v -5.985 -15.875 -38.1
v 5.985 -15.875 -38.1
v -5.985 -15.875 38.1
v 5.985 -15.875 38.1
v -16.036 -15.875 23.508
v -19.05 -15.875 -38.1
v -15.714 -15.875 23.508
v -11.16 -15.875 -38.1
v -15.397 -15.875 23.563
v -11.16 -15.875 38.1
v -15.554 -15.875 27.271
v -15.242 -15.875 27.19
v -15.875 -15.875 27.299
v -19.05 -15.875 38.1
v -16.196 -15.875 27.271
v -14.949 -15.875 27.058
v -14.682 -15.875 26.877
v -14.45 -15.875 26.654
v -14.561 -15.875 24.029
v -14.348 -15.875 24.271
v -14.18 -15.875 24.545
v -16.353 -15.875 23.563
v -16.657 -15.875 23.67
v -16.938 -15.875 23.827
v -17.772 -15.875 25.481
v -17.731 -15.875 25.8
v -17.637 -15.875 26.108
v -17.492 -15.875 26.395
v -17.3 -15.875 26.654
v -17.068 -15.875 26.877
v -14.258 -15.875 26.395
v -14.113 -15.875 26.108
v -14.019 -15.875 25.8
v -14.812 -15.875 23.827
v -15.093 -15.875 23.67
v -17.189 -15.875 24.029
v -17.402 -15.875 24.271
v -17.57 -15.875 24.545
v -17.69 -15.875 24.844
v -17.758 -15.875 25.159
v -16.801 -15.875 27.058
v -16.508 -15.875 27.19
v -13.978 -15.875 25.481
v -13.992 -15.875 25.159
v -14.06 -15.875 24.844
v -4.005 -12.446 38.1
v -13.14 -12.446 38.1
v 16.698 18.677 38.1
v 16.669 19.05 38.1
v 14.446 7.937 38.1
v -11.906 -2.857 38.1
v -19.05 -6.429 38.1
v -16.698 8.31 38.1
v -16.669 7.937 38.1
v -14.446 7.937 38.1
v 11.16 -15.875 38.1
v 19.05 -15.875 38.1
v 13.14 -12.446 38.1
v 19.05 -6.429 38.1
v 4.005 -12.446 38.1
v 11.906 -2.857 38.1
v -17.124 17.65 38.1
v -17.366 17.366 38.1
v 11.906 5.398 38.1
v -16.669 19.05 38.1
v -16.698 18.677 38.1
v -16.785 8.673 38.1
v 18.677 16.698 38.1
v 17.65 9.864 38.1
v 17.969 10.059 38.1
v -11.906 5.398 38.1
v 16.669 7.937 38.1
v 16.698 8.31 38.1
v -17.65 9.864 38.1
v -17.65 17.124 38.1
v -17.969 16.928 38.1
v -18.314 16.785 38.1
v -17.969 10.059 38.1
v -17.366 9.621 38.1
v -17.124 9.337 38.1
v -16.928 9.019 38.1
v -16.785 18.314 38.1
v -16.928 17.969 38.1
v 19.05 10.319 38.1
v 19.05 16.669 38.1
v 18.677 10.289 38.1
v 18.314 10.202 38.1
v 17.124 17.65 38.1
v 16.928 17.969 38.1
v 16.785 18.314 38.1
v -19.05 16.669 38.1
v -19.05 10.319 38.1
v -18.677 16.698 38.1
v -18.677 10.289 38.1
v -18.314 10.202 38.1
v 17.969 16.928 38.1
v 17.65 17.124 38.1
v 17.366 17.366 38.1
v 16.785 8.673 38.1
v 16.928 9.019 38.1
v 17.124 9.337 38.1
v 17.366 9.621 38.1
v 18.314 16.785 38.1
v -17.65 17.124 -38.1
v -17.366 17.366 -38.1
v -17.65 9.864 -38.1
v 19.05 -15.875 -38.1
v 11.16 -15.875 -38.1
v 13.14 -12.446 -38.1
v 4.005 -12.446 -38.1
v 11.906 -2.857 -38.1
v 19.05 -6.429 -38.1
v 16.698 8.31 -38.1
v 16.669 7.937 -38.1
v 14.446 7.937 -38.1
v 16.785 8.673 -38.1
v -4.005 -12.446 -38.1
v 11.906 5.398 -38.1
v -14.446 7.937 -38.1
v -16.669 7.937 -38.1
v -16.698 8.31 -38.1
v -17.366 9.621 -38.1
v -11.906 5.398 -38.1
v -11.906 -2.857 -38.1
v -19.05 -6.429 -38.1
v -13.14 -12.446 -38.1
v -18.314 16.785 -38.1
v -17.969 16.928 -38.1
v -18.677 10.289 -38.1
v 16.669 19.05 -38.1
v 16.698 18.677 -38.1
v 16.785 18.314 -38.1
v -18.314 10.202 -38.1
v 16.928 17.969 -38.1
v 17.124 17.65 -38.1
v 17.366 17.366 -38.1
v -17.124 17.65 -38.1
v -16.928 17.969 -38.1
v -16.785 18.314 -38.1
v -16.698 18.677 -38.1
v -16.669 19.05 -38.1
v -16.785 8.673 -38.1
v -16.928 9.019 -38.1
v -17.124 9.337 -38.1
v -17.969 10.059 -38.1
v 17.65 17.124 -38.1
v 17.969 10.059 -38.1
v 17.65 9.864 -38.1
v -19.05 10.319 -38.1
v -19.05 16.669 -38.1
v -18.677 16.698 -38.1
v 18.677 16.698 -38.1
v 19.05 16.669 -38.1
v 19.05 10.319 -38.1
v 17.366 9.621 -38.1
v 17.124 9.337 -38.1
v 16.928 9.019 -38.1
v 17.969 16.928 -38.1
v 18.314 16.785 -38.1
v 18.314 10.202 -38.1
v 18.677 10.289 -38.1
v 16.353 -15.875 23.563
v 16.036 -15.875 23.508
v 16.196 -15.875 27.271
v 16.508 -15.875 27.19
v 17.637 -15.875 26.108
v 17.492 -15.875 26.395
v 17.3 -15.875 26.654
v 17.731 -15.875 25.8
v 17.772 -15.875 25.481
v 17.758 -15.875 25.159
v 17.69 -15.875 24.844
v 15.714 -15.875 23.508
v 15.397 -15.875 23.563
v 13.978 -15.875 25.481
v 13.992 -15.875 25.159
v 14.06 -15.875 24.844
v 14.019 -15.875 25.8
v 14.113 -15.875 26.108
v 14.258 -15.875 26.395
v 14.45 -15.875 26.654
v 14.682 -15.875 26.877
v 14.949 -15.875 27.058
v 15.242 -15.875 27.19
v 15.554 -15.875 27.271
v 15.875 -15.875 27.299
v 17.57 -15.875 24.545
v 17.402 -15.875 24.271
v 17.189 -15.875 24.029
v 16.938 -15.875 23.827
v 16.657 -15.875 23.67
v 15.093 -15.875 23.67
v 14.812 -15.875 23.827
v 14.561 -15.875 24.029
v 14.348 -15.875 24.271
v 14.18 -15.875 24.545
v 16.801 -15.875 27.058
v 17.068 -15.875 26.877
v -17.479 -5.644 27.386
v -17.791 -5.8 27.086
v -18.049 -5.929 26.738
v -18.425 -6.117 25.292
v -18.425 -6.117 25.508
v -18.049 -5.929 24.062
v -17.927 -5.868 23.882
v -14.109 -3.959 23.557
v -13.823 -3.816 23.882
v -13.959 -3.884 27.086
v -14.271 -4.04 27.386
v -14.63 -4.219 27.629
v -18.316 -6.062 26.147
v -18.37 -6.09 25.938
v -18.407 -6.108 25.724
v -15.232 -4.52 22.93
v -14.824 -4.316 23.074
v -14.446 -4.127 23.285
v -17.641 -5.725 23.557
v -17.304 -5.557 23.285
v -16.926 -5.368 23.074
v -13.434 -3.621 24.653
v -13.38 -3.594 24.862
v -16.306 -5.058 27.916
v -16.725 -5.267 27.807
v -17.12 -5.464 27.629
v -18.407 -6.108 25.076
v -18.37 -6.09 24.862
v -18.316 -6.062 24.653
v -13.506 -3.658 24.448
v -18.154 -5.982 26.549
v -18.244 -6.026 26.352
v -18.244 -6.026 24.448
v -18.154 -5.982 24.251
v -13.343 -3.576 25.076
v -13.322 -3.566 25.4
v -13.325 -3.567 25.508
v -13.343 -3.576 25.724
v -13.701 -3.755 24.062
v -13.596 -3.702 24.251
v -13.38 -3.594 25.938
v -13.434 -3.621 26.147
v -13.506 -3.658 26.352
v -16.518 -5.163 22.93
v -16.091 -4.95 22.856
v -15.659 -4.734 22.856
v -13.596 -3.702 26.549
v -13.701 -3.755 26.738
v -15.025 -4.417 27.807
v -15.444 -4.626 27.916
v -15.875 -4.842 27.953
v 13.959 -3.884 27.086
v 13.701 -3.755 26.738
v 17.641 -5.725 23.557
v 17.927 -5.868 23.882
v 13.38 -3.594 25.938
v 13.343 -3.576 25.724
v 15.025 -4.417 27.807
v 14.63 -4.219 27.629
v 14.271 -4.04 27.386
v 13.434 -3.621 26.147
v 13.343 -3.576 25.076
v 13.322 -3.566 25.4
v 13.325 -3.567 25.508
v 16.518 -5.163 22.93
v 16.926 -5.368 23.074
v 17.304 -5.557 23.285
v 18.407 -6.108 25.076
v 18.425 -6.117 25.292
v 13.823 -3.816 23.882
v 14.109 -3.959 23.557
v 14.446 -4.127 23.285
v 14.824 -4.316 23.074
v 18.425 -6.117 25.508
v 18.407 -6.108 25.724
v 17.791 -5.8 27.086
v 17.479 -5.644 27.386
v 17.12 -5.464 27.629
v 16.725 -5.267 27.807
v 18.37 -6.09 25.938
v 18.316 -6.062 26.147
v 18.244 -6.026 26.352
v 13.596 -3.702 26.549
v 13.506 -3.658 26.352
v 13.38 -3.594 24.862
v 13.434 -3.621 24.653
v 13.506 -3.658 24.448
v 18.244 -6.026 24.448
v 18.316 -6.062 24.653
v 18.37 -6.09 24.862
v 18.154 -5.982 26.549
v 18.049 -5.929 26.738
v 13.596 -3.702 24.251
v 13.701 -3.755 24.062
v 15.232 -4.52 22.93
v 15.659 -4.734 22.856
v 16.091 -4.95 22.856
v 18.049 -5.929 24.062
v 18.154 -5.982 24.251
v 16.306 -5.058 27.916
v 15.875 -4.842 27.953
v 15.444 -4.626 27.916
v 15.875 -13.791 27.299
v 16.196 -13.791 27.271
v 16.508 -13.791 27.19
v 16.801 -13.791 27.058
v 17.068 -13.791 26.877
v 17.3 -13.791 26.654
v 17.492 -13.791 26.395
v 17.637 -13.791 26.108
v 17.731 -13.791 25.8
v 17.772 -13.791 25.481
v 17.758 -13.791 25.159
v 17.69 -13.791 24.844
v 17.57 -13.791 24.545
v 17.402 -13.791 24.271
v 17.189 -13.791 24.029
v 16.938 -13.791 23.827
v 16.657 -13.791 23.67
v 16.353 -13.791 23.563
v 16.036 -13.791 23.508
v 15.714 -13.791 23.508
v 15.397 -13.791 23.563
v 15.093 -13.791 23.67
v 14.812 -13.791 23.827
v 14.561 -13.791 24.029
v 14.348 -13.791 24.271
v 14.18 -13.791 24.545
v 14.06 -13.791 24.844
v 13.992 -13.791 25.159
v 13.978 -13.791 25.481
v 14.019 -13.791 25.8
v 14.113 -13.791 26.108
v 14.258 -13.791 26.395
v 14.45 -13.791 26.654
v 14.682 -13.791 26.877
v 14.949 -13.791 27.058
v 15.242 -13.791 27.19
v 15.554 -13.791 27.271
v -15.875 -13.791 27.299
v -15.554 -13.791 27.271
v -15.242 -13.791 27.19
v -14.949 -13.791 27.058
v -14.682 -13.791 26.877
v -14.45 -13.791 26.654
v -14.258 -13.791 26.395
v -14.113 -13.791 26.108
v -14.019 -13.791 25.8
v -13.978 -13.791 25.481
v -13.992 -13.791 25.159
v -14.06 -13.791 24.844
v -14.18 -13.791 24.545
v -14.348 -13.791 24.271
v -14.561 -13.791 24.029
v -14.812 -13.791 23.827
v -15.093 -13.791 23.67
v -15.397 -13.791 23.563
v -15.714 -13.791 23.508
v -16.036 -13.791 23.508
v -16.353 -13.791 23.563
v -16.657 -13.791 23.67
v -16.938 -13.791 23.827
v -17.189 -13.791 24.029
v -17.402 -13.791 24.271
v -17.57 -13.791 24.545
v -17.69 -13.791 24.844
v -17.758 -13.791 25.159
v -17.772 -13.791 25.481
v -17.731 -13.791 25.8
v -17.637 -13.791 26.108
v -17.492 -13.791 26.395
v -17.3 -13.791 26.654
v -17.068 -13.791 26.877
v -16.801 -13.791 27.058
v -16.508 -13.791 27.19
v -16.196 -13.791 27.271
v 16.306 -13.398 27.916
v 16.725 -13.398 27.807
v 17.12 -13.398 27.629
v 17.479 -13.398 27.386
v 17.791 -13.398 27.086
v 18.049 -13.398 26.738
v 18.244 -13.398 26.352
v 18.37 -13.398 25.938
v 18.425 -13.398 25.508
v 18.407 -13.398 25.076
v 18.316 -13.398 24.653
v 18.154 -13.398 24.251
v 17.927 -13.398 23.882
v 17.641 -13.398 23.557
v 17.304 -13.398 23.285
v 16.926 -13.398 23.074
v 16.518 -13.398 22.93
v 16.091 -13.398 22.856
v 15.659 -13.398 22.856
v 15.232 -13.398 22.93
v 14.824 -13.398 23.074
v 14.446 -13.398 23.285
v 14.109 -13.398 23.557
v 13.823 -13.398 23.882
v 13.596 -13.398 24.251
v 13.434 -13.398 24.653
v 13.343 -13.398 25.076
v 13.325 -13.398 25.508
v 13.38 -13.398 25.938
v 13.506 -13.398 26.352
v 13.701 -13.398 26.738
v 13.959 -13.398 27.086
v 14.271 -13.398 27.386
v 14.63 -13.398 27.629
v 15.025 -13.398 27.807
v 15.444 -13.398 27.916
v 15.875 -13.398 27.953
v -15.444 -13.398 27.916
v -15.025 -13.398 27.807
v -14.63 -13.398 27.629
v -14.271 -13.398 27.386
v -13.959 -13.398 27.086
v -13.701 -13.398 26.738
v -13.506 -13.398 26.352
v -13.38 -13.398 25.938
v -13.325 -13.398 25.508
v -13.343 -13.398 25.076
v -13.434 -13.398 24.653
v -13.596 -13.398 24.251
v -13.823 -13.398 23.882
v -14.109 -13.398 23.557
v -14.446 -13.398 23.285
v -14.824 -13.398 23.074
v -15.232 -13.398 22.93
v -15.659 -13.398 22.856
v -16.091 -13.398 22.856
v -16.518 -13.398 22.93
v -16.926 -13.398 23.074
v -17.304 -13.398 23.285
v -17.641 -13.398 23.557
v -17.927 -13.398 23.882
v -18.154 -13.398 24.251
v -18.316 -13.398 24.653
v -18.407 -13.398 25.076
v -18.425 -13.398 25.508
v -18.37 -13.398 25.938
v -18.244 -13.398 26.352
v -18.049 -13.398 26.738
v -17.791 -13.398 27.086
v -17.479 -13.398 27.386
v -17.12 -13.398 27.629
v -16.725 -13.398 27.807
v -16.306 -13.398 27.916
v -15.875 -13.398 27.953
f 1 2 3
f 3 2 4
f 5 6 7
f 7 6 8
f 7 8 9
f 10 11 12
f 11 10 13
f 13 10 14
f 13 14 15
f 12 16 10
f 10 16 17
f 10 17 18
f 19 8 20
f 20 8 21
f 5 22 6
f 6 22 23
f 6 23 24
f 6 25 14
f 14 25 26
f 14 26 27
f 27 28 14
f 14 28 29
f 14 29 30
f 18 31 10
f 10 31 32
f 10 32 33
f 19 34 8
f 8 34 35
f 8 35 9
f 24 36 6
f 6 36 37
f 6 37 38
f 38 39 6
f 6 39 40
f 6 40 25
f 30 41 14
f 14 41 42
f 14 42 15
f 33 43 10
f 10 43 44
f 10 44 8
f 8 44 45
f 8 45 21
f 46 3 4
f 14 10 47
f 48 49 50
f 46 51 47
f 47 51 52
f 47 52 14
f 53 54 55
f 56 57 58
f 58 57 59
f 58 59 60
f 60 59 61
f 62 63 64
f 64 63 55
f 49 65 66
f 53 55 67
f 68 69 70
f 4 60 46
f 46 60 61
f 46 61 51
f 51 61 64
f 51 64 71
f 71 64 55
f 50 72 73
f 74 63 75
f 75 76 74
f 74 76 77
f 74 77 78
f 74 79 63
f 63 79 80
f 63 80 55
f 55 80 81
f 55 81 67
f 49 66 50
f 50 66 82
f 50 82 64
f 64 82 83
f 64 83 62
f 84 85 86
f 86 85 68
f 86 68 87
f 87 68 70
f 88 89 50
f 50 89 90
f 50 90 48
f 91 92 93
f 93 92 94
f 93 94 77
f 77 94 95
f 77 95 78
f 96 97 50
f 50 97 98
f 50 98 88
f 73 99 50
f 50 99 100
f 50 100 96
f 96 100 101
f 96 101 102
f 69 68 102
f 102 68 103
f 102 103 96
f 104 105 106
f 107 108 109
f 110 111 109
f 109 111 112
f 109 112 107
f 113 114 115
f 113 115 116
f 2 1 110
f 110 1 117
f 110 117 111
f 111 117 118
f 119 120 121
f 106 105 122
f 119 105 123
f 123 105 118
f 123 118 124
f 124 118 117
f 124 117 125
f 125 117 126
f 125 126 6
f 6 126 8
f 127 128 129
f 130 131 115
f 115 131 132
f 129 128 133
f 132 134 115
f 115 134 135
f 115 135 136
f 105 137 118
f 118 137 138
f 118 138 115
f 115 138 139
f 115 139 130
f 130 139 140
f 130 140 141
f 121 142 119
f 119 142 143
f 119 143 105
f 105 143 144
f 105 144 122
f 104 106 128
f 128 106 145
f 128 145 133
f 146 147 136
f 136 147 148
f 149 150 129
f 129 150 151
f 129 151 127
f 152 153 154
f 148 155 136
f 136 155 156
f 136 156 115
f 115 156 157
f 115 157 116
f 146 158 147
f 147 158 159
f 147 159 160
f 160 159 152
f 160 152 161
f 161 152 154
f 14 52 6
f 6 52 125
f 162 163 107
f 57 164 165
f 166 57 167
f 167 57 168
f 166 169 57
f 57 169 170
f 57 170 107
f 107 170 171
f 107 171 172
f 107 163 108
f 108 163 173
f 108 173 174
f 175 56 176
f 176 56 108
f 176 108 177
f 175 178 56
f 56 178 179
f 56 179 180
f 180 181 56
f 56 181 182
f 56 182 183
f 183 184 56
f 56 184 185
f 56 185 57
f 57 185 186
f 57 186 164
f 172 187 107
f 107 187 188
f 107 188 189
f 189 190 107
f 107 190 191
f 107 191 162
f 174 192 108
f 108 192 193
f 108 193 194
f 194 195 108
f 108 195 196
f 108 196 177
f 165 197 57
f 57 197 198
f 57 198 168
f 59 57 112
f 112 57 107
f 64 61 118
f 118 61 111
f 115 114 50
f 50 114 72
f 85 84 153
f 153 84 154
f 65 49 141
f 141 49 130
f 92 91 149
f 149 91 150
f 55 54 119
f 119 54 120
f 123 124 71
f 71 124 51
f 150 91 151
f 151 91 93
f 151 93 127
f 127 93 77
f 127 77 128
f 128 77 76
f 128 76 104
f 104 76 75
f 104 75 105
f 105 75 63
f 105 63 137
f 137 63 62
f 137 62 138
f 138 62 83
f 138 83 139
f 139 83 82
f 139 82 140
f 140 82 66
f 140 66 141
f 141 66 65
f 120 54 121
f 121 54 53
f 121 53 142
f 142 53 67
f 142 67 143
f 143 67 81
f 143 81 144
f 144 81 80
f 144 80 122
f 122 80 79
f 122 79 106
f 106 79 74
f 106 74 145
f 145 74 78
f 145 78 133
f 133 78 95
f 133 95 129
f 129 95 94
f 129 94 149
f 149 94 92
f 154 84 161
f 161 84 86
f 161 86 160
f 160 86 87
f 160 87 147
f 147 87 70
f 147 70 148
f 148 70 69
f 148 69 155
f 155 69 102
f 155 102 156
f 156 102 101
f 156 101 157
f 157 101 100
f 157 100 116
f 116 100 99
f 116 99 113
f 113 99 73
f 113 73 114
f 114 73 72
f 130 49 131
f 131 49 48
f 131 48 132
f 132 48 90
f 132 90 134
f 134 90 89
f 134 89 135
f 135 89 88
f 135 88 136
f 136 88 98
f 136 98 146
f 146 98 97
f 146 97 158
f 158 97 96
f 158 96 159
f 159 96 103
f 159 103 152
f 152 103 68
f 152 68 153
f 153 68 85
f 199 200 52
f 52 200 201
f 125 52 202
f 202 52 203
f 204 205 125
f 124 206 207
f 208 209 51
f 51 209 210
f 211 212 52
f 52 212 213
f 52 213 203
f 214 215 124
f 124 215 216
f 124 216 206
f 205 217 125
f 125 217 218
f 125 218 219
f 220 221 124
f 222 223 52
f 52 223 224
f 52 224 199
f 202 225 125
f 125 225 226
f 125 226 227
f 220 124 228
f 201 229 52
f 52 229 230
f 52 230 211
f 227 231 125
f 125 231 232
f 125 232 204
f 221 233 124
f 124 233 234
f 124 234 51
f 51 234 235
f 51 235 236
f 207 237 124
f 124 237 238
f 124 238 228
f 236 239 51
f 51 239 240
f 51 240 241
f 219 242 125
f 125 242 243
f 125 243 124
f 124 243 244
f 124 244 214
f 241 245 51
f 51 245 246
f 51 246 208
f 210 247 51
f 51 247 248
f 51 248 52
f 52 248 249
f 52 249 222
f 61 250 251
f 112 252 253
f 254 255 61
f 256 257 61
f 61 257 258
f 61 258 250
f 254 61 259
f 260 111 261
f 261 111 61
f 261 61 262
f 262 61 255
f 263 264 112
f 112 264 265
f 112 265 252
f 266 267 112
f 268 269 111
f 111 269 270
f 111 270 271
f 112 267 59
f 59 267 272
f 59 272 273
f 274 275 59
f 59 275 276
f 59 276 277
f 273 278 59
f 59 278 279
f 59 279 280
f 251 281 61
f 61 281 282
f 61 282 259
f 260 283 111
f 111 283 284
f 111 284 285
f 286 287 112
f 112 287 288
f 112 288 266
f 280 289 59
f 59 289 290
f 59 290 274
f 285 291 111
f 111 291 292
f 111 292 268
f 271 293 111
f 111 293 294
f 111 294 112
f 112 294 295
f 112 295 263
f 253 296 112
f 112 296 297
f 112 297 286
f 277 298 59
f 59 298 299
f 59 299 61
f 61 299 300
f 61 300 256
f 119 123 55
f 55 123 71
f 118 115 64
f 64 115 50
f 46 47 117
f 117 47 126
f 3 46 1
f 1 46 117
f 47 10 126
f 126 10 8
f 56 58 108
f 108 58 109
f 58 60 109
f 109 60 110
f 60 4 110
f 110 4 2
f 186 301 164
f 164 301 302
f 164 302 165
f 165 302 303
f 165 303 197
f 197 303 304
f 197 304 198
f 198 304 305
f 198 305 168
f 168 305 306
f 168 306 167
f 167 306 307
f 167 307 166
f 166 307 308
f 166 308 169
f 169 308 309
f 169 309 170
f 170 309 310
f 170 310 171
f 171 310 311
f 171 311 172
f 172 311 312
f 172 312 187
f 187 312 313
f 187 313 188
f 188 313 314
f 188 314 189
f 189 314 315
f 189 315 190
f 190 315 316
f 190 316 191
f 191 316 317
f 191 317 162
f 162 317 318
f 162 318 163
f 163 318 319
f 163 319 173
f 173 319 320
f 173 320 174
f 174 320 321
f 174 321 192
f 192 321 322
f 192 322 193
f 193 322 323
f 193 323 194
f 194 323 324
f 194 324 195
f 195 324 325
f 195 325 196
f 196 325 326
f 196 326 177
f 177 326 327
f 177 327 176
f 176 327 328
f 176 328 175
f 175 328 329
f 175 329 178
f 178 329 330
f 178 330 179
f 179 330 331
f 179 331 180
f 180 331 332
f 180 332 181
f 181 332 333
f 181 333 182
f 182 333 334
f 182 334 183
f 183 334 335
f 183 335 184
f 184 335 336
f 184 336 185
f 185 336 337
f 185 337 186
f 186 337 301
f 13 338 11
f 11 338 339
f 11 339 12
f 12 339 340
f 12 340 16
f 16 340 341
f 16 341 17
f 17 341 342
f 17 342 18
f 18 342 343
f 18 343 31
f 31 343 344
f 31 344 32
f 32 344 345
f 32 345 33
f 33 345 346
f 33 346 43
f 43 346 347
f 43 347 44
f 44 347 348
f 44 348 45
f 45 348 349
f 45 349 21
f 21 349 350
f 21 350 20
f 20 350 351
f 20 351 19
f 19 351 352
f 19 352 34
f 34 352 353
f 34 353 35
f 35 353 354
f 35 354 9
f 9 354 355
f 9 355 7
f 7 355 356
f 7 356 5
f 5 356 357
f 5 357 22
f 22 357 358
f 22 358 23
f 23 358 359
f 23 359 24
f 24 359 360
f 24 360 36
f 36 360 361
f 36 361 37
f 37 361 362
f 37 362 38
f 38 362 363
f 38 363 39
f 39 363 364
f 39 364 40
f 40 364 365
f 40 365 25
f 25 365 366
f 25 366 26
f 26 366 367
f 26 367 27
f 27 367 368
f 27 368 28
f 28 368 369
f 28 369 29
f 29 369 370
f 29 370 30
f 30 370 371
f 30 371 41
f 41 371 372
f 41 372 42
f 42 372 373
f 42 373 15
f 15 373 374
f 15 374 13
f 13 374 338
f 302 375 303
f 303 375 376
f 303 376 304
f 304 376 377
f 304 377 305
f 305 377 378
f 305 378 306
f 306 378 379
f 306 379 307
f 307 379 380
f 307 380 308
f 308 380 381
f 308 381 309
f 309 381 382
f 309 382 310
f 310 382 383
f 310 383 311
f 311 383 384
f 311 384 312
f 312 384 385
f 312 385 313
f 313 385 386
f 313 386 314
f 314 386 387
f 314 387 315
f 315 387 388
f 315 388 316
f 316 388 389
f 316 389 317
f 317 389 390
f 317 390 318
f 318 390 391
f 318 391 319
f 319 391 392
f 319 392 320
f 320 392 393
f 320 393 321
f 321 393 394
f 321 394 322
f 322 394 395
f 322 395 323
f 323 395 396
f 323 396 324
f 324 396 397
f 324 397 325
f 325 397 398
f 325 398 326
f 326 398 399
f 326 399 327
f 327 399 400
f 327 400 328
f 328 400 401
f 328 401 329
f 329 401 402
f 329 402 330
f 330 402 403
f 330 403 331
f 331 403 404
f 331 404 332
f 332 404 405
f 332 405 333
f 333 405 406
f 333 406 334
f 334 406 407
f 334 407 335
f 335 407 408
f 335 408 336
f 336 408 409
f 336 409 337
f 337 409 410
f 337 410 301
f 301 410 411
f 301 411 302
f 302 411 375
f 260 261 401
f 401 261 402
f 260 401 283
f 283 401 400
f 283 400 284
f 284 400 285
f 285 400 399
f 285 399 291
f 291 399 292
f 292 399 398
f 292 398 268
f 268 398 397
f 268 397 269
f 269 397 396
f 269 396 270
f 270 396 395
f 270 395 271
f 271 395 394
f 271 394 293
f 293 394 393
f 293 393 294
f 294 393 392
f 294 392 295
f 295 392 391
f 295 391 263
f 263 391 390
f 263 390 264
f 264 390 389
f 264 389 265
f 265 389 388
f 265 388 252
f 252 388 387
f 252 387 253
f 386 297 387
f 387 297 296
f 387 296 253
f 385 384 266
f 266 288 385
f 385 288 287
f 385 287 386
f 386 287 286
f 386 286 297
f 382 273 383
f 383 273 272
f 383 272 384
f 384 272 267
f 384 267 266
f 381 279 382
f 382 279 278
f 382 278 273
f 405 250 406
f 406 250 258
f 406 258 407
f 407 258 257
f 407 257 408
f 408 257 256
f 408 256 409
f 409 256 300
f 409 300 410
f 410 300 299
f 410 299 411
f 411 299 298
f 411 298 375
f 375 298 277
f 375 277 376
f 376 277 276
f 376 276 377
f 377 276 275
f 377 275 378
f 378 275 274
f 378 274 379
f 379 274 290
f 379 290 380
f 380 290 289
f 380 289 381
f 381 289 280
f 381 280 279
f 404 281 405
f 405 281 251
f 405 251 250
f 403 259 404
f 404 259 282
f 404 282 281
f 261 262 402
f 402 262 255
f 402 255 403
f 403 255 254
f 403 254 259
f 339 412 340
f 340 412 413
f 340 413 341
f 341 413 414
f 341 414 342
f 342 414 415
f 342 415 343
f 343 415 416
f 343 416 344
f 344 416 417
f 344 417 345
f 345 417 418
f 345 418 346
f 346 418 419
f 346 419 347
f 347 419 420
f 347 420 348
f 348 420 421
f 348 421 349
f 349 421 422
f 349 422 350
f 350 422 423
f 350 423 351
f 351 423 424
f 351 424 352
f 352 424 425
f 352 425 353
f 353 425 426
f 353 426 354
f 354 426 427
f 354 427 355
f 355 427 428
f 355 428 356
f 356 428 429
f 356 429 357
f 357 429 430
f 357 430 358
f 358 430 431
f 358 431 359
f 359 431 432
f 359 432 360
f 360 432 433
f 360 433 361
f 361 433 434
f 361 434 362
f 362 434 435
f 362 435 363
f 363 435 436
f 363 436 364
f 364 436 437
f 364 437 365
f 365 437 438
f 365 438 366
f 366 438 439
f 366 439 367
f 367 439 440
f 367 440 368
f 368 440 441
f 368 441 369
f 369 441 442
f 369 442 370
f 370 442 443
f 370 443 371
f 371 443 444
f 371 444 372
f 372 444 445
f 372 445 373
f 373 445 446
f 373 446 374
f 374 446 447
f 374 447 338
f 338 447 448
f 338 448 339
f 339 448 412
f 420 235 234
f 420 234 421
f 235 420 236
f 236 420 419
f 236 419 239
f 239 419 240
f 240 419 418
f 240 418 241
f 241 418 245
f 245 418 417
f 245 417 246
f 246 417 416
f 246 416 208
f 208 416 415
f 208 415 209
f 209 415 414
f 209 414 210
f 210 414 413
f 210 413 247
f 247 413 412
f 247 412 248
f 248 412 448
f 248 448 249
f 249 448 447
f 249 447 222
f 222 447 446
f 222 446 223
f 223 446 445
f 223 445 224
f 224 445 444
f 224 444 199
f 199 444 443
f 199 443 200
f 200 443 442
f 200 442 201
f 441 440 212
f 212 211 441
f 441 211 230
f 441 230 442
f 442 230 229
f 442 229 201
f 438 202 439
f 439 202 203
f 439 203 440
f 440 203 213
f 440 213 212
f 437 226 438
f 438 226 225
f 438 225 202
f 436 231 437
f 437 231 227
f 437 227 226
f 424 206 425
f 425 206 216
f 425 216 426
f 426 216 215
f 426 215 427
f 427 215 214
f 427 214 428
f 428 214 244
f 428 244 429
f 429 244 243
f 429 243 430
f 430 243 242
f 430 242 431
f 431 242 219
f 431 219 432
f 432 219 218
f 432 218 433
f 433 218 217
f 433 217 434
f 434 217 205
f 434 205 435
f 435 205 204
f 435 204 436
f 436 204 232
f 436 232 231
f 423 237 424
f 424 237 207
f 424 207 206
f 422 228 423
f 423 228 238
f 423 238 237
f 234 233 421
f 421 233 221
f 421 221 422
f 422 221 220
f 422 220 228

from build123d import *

# Parameters (mm, degrees)
BOSS_EXTRU_1_DEPTH        = 38.1
CONG_1_R                  = 2.38125
CHANFREIN1_SIZE           = 10.16
CHANFREIN1_SIZE_2         = 5.08
CHANFREIN2_SIZE           = 10.16
CHANFREIN2_SIZE_2         = 5.08
CHANFREIN3_SIZE           = 2.54
EMPREINTE1_START          = -38.1
EMPREINTE1_DEPTH          = 76.2
D_PLACER_START            = -38.1
D_PLACER_LA_FACE1_DEPTH   = 76.2
ESQUISSE4_W               = 1.89865
ESQUISSE4_H               = 21.2725
D_GAGEMENT_61_AT_2_COUNT  = 2
D_GAGEMENT_61_AT_2_PITCH  = 31.75
D_GAGEMENT_101_AT_2_COUNT = 2
D_GAGEMENT_101_AT_2_PITCH = 31.75


# Read off the part's stored shape, not the designer's step: Empreinte1, Déplacer la face1
# Some blends are built 0.0001 mm under size
with BuildPart() as part:
    # Esquisse2 → Boss.-Extru.1 (new, symmetric)
    with BuildSketch(Plane.XY):
        Polygon((-19.05, -15.875), (19.05, -15.875), (19.05, -7.9375), (11.90625, -7.9375), (11.90625, 7.9375), (16.66875, 7.9375), (16.66875, 10.31875), (19.05, 10.31875), (19.05, 16.66875), (16.66875, 16.66875), (16.66875, 19.05), (-16.66875, 19.05), (-16.66875, 16.66875), (-19.05, 16.66875), (-19.05, 10.31875), (-16.66875, 10.31875), (-16.66875, 7.9375), (-11.90625, 7.9375), (-11.90625, -7.9375), (-19.05, -7.9375), align=None)
    extrude(amount=BOSS_EXTRU_1_DEPTH, both=True)

    # Congé1
    cong_1_edges = [part.edges().sort_by_distance(p)[0] for p in [
        (-16.66875, 16.66875, 0),
        (-16.66875, 10.31875, 0),
        (16.66875, 10.31875, 0),
        (16.66875, 16.66875, 0),
    ]]
    fillet(cong_1_edges, radius=CONG_1_R - 0.0001)  # a hair under: the kernel refuses the full size

    # Chanfrein1
    # the kernel refuses this chamfer: 10.16, 5.08 mm, written as the material it adds along each edge
    with BuildSketch(Plane(origin=(-11.90625, -7.9375, 38.1), x_dir=(-0.9998508956747119, -0.017268075123668056, 0), z_dir=(0, 0, -1))) as chanfrein1_piece_1_section:
        Polygon((CHANFREIN1_SIZE * 0.999850895675, CHANFREIN1_SIZE * 0.0172680751237), (-CHANFREIN1_SIZE_2 * 0.0172680751237, CHANFREIN1_SIZE_2 * 0.999850895675), (0, 0), align=None)
    chanfrein1_piece_1 = extrude(amount=76.2, mode=Mode.PRIVATE)
    chanfrein1_piece_1 = split(chanfrein1_piece_1, bisect_by=Plane(origin=(-19.05, -6.161924143, 0), z_dir=(1, 0, 0)), keep=Keep.TOP, mode=Mode.PRIVATE)
    add(chanfrein1_piece_1)

    # Chanfrein2
    # the kernel refuses this chamfer: 10.16, 5.08 mm, written as the material it adds along each edge
    with BuildSketch(Plane(origin=(11.90625, -7.9375, -38.1), x_dir=(0.9998508956747119, -0.017268075123668056, 0), z_dir=(0, 0, 1))) as chanfrein2_piece_1_section:
        Polygon((CHANFREIN2_SIZE * 0.999850895675, CHANFREIN2_SIZE * 0.0172680751237), (-CHANFREIN2_SIZE_2 * 0.0172680751237, CHANFREIN2_SIZE_2 * 0.999850895675), (0, 0), align=None)
    chanfrein2_piece_1 = extrude(amount=76.2, mode=Mode.PRIVATE)
    chanfrein2_piece_1 = split(chanfrein2_piece_1, bisect_by=Plane(origin=(19.05, -6.161924143, 0), z_dir=(-1, 0, 0)), keep=Keep.TOP, mode=Mode.PRIVATE)
    add(chanfrein2_piece_1)

    # Chanfrein3
    chanfrein3_edges = [part.edges().sort_by_distance(p)[0] for p in [
        (-11.90625, 7.9375, 0),
        (11.90625, 7.9375, 0),
    ]]
    chamfer(chanfrein3_edges, length=CHANFREIN3_SIZE)

    # Empreinte1 outline → Empreinte1 (cut)
    with BuildSketch(Plane.XY.offset(EMPREINTE1_START)):
        Polygon((-6.278087105, -15.875), (-4.445, -12.7), (-12.7, -12.7), (-10.866912895, -15.875), align=None)
        Polygon((4.445, -12.7), (6.278087105, -15.875), (10.866912895, -15.875), (12.7, -12.7), align=None)
    extrude(amount=EMPREINTE1_DEPTH, mode=Mode.SUBTRACT)

    # Déplacer la face1 outline → Déplacer la face1 (cut)
    with BuildSketch(Plane.XY.offset(D_PLACER_START)):
        Polygon((-5.984793168, -15.875), (-4.005059095, -12.446), (-13.139940905, -12.446), (-11.160206832, -15.875), (-10.866912895, -15.875), (-12.7, -12.7), (-4.445, -12.7), (-6.278087105, -15.875), align=None)
        Polygon((4.005059095, -12.446), (5.984793168, -15.875), (6.278087105, -15.875), (4.445, -12.7), (12.7, -12.7), (10.866912895, -15.875), (11.160206832, -15.875), (13.139940905, -12.446), align=None)
    extrude(amount=D_PLACER_LA_FACE1_DEPTH, mode=Mode.SUBTRACT)

    # Esquisse4 → Dégagement #61 (revolve, cut)
    with BuildSketch(Plane(origin=(-15.875, 5.3975, 25.4), x_dir=(0, 0, 1), z_dir=(1, 0, 0))):
        with Locations((0.949325, 10.63625)):
            Rectangle(ESQUISSE4_W, ESQUISSE4_H)
    d_gagement_61 = revolve(axis=Axis((-15.875, 11.7475, 25.4), (0, -1, 0)), mode=Mode.SUBTRACT)

    # Dégagement #61 at 2: Dégagement #61 ×2
    with Locations(*[(i * D_GAGEMENT_61_AT_2_PITCH, 0, 0) for i in range(1, D_GAGEMENT_61_AT_2_COUNT)]):
        add(d_gagement_61, mode=Mode.SUBTRACT)

    # Esquisse7 → Dégagement #101 (revolve, cut)
    with BuildSketch(Plane(origin=(-15.875, 5.3975, 25.4), x_dir=(0, 0, 1), z_dir=(1, 0, 0))):
        Polygon((0, 0), (0, 20.329816902), (2.5527, 18.796), (2.5527, 0), align=None)
    d_gagement_101 = revolve(axis=Axis((-15.875, 11.7475, 25.4), (0, -1, 0)), mode=Mode.SUBTRACT)

    # Dégagement #101 at 2: Dégagement #101 ×2
    with Locations(*[(i * D_GAGEMENT_101_AT_2_PITCH, 0, 0) for i in range(1, D_GAGEMENT_101_AT_2_COUNT)]):
        add(d_gagement_101, mode=Mode.SUBTRACT)


solid = part.part
